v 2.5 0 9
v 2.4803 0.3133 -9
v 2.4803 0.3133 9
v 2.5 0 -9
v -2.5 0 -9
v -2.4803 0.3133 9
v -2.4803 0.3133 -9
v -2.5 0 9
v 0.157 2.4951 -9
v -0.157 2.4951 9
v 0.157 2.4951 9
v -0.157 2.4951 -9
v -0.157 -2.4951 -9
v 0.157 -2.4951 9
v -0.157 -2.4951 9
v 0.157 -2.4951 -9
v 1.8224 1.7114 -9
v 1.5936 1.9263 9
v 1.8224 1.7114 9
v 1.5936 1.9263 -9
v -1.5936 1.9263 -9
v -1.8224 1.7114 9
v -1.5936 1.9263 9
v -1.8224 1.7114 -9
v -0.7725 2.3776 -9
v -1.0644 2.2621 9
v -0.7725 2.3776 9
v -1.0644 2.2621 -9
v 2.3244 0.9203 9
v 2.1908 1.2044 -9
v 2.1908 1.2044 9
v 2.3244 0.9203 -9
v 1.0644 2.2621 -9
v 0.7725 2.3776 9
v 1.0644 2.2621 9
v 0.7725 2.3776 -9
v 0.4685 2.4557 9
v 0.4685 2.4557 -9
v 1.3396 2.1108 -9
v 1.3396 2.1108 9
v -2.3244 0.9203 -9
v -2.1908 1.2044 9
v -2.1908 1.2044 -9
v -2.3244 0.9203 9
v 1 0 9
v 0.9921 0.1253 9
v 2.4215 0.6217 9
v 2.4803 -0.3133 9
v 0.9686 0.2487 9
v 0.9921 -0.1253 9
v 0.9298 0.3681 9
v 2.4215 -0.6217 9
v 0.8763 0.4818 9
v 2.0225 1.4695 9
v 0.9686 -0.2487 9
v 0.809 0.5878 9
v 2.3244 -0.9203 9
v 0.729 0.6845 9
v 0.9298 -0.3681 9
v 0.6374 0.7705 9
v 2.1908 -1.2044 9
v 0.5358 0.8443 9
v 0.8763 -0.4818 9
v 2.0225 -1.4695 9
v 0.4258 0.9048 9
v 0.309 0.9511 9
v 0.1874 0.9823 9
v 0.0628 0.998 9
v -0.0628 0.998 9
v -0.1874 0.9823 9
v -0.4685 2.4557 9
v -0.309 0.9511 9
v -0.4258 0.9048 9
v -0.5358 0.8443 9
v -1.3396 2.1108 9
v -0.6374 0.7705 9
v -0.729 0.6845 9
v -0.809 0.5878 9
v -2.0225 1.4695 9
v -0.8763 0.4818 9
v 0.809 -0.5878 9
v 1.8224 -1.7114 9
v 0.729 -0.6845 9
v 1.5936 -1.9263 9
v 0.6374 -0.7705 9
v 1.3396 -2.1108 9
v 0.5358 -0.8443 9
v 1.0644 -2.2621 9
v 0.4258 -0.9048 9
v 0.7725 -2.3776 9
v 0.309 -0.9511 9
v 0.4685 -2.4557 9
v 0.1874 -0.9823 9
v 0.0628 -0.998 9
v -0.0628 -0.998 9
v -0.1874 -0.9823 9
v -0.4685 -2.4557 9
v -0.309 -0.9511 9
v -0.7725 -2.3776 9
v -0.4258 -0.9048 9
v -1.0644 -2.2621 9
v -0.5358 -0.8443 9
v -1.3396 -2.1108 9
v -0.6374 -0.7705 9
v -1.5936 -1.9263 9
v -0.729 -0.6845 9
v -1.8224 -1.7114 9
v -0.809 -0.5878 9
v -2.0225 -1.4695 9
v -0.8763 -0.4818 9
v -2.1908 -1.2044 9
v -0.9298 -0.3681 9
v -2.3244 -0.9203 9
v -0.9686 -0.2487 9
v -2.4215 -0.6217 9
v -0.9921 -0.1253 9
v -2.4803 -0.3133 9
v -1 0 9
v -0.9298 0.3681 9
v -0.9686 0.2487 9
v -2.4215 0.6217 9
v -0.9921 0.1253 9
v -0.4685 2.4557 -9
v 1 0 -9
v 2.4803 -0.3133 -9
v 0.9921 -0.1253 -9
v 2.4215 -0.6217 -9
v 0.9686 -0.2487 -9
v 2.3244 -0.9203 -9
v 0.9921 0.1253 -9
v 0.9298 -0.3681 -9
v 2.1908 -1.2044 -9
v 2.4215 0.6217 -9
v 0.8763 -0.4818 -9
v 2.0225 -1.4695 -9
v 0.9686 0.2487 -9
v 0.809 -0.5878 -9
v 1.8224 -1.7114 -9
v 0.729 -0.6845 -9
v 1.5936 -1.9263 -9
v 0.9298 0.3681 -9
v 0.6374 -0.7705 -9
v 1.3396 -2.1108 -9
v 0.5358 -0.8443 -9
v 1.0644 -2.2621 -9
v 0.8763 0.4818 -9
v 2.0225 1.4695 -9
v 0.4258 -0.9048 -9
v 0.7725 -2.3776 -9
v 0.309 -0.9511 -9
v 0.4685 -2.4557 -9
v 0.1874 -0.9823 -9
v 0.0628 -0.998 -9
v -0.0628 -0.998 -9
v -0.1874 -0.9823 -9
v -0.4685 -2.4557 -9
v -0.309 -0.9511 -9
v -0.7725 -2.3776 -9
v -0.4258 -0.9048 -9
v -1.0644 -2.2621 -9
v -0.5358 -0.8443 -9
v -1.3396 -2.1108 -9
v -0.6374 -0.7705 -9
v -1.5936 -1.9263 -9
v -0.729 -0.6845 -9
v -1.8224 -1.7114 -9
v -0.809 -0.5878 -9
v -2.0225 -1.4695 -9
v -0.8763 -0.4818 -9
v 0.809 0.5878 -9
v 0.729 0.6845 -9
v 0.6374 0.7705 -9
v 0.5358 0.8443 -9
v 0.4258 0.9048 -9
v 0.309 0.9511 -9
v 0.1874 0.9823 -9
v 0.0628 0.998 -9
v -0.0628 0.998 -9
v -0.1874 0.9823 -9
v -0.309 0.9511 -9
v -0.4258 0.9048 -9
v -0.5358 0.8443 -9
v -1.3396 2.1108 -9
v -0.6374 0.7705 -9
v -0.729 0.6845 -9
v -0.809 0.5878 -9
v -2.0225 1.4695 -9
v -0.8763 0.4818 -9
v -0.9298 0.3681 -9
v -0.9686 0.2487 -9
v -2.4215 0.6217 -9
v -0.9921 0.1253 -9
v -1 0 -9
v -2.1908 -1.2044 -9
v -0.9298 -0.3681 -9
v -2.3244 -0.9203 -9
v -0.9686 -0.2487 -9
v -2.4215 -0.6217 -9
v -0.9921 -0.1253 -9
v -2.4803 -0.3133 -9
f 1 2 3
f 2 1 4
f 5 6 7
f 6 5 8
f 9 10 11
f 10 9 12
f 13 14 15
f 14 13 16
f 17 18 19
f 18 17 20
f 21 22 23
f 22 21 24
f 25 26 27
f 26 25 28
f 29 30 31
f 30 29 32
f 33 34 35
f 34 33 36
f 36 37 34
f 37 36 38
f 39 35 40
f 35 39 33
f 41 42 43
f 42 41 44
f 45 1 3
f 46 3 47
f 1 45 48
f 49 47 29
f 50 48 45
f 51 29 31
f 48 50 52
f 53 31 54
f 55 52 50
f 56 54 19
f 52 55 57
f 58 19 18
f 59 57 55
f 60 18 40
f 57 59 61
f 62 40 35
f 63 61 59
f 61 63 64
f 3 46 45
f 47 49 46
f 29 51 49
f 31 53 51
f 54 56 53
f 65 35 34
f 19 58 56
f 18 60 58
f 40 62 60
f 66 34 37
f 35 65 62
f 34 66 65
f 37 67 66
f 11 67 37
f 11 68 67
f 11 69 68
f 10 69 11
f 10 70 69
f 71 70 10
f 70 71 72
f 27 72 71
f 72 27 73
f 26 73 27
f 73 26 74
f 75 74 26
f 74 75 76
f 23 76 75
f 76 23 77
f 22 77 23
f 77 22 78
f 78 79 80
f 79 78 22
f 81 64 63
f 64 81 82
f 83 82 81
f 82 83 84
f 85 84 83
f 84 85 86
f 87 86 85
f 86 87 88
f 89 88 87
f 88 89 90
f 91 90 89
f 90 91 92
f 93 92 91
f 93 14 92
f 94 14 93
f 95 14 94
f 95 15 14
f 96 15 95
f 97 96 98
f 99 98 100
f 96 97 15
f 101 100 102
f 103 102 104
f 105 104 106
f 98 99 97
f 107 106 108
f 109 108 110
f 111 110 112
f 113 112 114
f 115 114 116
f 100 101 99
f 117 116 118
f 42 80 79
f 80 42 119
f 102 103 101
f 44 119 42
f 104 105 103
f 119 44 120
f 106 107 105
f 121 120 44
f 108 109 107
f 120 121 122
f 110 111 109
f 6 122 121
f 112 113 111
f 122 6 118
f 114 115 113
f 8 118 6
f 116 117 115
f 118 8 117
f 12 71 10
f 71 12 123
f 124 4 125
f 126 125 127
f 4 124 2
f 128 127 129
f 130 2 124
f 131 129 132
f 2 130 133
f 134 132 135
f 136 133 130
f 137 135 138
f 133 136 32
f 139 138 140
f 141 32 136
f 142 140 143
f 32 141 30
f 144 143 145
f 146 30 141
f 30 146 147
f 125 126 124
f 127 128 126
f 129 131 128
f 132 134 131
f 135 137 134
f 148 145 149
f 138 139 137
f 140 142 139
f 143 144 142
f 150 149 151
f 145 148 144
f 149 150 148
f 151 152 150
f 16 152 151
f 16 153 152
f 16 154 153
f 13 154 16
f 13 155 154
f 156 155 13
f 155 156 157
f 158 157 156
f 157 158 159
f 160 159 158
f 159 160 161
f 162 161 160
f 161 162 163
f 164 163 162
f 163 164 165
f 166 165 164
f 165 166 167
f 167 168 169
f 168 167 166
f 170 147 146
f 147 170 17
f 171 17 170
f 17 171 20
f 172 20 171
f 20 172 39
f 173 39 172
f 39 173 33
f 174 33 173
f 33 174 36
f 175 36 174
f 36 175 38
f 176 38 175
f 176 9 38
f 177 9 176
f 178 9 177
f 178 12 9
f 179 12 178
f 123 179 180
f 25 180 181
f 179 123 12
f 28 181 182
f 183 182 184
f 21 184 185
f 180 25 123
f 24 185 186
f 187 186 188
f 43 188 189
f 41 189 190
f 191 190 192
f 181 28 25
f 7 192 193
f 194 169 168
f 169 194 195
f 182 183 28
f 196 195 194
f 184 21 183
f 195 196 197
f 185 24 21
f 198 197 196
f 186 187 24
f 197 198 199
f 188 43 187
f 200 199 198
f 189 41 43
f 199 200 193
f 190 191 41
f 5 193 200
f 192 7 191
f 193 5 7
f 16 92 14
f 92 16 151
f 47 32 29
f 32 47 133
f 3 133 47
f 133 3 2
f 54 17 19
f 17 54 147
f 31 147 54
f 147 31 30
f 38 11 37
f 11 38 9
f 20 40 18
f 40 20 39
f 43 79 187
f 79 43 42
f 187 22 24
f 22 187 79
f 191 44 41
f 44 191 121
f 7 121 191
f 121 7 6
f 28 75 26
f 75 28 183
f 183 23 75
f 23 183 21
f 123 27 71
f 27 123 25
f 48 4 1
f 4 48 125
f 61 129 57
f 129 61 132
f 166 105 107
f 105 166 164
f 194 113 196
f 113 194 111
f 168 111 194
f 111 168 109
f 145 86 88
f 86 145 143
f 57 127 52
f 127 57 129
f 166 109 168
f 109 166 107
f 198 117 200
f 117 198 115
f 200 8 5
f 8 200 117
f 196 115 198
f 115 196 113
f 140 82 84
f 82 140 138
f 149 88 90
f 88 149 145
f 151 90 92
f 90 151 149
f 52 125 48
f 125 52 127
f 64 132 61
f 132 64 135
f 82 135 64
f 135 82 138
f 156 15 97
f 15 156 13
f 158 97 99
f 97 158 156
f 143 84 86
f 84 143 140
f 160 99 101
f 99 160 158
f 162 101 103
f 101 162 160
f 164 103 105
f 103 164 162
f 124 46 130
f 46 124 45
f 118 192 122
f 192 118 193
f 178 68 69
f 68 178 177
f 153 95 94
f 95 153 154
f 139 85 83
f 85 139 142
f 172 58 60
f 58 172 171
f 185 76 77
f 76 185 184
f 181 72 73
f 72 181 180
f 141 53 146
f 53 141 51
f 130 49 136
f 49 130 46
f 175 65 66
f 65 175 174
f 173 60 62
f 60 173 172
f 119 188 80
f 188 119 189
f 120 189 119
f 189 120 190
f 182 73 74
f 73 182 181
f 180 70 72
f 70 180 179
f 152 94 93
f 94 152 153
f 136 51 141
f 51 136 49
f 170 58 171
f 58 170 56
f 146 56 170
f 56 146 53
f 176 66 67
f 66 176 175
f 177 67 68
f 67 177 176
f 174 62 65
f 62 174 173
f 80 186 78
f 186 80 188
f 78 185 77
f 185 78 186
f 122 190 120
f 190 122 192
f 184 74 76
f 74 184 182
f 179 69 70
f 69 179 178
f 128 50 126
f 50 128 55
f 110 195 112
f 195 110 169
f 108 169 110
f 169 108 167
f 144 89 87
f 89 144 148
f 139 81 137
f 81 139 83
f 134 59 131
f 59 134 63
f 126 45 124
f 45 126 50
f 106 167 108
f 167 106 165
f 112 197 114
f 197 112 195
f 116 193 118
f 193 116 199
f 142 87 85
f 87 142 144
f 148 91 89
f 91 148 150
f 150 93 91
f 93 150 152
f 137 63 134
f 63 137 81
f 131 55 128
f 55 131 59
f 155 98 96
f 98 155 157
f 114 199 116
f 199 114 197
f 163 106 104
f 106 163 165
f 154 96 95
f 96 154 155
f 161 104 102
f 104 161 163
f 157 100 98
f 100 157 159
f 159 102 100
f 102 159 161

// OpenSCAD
$fn = 50;


difference() {
	union() {
		translate(v = [0, 0, -9.0000000000]) {
			cylinder(h = 18, r = 2.5000000000);
		}
	}
	union() {
		translate(v = [0, 0, -100.0000000000]) {
			cylinder(h = 200, r = 1.0000000000);
		}
	}
}
